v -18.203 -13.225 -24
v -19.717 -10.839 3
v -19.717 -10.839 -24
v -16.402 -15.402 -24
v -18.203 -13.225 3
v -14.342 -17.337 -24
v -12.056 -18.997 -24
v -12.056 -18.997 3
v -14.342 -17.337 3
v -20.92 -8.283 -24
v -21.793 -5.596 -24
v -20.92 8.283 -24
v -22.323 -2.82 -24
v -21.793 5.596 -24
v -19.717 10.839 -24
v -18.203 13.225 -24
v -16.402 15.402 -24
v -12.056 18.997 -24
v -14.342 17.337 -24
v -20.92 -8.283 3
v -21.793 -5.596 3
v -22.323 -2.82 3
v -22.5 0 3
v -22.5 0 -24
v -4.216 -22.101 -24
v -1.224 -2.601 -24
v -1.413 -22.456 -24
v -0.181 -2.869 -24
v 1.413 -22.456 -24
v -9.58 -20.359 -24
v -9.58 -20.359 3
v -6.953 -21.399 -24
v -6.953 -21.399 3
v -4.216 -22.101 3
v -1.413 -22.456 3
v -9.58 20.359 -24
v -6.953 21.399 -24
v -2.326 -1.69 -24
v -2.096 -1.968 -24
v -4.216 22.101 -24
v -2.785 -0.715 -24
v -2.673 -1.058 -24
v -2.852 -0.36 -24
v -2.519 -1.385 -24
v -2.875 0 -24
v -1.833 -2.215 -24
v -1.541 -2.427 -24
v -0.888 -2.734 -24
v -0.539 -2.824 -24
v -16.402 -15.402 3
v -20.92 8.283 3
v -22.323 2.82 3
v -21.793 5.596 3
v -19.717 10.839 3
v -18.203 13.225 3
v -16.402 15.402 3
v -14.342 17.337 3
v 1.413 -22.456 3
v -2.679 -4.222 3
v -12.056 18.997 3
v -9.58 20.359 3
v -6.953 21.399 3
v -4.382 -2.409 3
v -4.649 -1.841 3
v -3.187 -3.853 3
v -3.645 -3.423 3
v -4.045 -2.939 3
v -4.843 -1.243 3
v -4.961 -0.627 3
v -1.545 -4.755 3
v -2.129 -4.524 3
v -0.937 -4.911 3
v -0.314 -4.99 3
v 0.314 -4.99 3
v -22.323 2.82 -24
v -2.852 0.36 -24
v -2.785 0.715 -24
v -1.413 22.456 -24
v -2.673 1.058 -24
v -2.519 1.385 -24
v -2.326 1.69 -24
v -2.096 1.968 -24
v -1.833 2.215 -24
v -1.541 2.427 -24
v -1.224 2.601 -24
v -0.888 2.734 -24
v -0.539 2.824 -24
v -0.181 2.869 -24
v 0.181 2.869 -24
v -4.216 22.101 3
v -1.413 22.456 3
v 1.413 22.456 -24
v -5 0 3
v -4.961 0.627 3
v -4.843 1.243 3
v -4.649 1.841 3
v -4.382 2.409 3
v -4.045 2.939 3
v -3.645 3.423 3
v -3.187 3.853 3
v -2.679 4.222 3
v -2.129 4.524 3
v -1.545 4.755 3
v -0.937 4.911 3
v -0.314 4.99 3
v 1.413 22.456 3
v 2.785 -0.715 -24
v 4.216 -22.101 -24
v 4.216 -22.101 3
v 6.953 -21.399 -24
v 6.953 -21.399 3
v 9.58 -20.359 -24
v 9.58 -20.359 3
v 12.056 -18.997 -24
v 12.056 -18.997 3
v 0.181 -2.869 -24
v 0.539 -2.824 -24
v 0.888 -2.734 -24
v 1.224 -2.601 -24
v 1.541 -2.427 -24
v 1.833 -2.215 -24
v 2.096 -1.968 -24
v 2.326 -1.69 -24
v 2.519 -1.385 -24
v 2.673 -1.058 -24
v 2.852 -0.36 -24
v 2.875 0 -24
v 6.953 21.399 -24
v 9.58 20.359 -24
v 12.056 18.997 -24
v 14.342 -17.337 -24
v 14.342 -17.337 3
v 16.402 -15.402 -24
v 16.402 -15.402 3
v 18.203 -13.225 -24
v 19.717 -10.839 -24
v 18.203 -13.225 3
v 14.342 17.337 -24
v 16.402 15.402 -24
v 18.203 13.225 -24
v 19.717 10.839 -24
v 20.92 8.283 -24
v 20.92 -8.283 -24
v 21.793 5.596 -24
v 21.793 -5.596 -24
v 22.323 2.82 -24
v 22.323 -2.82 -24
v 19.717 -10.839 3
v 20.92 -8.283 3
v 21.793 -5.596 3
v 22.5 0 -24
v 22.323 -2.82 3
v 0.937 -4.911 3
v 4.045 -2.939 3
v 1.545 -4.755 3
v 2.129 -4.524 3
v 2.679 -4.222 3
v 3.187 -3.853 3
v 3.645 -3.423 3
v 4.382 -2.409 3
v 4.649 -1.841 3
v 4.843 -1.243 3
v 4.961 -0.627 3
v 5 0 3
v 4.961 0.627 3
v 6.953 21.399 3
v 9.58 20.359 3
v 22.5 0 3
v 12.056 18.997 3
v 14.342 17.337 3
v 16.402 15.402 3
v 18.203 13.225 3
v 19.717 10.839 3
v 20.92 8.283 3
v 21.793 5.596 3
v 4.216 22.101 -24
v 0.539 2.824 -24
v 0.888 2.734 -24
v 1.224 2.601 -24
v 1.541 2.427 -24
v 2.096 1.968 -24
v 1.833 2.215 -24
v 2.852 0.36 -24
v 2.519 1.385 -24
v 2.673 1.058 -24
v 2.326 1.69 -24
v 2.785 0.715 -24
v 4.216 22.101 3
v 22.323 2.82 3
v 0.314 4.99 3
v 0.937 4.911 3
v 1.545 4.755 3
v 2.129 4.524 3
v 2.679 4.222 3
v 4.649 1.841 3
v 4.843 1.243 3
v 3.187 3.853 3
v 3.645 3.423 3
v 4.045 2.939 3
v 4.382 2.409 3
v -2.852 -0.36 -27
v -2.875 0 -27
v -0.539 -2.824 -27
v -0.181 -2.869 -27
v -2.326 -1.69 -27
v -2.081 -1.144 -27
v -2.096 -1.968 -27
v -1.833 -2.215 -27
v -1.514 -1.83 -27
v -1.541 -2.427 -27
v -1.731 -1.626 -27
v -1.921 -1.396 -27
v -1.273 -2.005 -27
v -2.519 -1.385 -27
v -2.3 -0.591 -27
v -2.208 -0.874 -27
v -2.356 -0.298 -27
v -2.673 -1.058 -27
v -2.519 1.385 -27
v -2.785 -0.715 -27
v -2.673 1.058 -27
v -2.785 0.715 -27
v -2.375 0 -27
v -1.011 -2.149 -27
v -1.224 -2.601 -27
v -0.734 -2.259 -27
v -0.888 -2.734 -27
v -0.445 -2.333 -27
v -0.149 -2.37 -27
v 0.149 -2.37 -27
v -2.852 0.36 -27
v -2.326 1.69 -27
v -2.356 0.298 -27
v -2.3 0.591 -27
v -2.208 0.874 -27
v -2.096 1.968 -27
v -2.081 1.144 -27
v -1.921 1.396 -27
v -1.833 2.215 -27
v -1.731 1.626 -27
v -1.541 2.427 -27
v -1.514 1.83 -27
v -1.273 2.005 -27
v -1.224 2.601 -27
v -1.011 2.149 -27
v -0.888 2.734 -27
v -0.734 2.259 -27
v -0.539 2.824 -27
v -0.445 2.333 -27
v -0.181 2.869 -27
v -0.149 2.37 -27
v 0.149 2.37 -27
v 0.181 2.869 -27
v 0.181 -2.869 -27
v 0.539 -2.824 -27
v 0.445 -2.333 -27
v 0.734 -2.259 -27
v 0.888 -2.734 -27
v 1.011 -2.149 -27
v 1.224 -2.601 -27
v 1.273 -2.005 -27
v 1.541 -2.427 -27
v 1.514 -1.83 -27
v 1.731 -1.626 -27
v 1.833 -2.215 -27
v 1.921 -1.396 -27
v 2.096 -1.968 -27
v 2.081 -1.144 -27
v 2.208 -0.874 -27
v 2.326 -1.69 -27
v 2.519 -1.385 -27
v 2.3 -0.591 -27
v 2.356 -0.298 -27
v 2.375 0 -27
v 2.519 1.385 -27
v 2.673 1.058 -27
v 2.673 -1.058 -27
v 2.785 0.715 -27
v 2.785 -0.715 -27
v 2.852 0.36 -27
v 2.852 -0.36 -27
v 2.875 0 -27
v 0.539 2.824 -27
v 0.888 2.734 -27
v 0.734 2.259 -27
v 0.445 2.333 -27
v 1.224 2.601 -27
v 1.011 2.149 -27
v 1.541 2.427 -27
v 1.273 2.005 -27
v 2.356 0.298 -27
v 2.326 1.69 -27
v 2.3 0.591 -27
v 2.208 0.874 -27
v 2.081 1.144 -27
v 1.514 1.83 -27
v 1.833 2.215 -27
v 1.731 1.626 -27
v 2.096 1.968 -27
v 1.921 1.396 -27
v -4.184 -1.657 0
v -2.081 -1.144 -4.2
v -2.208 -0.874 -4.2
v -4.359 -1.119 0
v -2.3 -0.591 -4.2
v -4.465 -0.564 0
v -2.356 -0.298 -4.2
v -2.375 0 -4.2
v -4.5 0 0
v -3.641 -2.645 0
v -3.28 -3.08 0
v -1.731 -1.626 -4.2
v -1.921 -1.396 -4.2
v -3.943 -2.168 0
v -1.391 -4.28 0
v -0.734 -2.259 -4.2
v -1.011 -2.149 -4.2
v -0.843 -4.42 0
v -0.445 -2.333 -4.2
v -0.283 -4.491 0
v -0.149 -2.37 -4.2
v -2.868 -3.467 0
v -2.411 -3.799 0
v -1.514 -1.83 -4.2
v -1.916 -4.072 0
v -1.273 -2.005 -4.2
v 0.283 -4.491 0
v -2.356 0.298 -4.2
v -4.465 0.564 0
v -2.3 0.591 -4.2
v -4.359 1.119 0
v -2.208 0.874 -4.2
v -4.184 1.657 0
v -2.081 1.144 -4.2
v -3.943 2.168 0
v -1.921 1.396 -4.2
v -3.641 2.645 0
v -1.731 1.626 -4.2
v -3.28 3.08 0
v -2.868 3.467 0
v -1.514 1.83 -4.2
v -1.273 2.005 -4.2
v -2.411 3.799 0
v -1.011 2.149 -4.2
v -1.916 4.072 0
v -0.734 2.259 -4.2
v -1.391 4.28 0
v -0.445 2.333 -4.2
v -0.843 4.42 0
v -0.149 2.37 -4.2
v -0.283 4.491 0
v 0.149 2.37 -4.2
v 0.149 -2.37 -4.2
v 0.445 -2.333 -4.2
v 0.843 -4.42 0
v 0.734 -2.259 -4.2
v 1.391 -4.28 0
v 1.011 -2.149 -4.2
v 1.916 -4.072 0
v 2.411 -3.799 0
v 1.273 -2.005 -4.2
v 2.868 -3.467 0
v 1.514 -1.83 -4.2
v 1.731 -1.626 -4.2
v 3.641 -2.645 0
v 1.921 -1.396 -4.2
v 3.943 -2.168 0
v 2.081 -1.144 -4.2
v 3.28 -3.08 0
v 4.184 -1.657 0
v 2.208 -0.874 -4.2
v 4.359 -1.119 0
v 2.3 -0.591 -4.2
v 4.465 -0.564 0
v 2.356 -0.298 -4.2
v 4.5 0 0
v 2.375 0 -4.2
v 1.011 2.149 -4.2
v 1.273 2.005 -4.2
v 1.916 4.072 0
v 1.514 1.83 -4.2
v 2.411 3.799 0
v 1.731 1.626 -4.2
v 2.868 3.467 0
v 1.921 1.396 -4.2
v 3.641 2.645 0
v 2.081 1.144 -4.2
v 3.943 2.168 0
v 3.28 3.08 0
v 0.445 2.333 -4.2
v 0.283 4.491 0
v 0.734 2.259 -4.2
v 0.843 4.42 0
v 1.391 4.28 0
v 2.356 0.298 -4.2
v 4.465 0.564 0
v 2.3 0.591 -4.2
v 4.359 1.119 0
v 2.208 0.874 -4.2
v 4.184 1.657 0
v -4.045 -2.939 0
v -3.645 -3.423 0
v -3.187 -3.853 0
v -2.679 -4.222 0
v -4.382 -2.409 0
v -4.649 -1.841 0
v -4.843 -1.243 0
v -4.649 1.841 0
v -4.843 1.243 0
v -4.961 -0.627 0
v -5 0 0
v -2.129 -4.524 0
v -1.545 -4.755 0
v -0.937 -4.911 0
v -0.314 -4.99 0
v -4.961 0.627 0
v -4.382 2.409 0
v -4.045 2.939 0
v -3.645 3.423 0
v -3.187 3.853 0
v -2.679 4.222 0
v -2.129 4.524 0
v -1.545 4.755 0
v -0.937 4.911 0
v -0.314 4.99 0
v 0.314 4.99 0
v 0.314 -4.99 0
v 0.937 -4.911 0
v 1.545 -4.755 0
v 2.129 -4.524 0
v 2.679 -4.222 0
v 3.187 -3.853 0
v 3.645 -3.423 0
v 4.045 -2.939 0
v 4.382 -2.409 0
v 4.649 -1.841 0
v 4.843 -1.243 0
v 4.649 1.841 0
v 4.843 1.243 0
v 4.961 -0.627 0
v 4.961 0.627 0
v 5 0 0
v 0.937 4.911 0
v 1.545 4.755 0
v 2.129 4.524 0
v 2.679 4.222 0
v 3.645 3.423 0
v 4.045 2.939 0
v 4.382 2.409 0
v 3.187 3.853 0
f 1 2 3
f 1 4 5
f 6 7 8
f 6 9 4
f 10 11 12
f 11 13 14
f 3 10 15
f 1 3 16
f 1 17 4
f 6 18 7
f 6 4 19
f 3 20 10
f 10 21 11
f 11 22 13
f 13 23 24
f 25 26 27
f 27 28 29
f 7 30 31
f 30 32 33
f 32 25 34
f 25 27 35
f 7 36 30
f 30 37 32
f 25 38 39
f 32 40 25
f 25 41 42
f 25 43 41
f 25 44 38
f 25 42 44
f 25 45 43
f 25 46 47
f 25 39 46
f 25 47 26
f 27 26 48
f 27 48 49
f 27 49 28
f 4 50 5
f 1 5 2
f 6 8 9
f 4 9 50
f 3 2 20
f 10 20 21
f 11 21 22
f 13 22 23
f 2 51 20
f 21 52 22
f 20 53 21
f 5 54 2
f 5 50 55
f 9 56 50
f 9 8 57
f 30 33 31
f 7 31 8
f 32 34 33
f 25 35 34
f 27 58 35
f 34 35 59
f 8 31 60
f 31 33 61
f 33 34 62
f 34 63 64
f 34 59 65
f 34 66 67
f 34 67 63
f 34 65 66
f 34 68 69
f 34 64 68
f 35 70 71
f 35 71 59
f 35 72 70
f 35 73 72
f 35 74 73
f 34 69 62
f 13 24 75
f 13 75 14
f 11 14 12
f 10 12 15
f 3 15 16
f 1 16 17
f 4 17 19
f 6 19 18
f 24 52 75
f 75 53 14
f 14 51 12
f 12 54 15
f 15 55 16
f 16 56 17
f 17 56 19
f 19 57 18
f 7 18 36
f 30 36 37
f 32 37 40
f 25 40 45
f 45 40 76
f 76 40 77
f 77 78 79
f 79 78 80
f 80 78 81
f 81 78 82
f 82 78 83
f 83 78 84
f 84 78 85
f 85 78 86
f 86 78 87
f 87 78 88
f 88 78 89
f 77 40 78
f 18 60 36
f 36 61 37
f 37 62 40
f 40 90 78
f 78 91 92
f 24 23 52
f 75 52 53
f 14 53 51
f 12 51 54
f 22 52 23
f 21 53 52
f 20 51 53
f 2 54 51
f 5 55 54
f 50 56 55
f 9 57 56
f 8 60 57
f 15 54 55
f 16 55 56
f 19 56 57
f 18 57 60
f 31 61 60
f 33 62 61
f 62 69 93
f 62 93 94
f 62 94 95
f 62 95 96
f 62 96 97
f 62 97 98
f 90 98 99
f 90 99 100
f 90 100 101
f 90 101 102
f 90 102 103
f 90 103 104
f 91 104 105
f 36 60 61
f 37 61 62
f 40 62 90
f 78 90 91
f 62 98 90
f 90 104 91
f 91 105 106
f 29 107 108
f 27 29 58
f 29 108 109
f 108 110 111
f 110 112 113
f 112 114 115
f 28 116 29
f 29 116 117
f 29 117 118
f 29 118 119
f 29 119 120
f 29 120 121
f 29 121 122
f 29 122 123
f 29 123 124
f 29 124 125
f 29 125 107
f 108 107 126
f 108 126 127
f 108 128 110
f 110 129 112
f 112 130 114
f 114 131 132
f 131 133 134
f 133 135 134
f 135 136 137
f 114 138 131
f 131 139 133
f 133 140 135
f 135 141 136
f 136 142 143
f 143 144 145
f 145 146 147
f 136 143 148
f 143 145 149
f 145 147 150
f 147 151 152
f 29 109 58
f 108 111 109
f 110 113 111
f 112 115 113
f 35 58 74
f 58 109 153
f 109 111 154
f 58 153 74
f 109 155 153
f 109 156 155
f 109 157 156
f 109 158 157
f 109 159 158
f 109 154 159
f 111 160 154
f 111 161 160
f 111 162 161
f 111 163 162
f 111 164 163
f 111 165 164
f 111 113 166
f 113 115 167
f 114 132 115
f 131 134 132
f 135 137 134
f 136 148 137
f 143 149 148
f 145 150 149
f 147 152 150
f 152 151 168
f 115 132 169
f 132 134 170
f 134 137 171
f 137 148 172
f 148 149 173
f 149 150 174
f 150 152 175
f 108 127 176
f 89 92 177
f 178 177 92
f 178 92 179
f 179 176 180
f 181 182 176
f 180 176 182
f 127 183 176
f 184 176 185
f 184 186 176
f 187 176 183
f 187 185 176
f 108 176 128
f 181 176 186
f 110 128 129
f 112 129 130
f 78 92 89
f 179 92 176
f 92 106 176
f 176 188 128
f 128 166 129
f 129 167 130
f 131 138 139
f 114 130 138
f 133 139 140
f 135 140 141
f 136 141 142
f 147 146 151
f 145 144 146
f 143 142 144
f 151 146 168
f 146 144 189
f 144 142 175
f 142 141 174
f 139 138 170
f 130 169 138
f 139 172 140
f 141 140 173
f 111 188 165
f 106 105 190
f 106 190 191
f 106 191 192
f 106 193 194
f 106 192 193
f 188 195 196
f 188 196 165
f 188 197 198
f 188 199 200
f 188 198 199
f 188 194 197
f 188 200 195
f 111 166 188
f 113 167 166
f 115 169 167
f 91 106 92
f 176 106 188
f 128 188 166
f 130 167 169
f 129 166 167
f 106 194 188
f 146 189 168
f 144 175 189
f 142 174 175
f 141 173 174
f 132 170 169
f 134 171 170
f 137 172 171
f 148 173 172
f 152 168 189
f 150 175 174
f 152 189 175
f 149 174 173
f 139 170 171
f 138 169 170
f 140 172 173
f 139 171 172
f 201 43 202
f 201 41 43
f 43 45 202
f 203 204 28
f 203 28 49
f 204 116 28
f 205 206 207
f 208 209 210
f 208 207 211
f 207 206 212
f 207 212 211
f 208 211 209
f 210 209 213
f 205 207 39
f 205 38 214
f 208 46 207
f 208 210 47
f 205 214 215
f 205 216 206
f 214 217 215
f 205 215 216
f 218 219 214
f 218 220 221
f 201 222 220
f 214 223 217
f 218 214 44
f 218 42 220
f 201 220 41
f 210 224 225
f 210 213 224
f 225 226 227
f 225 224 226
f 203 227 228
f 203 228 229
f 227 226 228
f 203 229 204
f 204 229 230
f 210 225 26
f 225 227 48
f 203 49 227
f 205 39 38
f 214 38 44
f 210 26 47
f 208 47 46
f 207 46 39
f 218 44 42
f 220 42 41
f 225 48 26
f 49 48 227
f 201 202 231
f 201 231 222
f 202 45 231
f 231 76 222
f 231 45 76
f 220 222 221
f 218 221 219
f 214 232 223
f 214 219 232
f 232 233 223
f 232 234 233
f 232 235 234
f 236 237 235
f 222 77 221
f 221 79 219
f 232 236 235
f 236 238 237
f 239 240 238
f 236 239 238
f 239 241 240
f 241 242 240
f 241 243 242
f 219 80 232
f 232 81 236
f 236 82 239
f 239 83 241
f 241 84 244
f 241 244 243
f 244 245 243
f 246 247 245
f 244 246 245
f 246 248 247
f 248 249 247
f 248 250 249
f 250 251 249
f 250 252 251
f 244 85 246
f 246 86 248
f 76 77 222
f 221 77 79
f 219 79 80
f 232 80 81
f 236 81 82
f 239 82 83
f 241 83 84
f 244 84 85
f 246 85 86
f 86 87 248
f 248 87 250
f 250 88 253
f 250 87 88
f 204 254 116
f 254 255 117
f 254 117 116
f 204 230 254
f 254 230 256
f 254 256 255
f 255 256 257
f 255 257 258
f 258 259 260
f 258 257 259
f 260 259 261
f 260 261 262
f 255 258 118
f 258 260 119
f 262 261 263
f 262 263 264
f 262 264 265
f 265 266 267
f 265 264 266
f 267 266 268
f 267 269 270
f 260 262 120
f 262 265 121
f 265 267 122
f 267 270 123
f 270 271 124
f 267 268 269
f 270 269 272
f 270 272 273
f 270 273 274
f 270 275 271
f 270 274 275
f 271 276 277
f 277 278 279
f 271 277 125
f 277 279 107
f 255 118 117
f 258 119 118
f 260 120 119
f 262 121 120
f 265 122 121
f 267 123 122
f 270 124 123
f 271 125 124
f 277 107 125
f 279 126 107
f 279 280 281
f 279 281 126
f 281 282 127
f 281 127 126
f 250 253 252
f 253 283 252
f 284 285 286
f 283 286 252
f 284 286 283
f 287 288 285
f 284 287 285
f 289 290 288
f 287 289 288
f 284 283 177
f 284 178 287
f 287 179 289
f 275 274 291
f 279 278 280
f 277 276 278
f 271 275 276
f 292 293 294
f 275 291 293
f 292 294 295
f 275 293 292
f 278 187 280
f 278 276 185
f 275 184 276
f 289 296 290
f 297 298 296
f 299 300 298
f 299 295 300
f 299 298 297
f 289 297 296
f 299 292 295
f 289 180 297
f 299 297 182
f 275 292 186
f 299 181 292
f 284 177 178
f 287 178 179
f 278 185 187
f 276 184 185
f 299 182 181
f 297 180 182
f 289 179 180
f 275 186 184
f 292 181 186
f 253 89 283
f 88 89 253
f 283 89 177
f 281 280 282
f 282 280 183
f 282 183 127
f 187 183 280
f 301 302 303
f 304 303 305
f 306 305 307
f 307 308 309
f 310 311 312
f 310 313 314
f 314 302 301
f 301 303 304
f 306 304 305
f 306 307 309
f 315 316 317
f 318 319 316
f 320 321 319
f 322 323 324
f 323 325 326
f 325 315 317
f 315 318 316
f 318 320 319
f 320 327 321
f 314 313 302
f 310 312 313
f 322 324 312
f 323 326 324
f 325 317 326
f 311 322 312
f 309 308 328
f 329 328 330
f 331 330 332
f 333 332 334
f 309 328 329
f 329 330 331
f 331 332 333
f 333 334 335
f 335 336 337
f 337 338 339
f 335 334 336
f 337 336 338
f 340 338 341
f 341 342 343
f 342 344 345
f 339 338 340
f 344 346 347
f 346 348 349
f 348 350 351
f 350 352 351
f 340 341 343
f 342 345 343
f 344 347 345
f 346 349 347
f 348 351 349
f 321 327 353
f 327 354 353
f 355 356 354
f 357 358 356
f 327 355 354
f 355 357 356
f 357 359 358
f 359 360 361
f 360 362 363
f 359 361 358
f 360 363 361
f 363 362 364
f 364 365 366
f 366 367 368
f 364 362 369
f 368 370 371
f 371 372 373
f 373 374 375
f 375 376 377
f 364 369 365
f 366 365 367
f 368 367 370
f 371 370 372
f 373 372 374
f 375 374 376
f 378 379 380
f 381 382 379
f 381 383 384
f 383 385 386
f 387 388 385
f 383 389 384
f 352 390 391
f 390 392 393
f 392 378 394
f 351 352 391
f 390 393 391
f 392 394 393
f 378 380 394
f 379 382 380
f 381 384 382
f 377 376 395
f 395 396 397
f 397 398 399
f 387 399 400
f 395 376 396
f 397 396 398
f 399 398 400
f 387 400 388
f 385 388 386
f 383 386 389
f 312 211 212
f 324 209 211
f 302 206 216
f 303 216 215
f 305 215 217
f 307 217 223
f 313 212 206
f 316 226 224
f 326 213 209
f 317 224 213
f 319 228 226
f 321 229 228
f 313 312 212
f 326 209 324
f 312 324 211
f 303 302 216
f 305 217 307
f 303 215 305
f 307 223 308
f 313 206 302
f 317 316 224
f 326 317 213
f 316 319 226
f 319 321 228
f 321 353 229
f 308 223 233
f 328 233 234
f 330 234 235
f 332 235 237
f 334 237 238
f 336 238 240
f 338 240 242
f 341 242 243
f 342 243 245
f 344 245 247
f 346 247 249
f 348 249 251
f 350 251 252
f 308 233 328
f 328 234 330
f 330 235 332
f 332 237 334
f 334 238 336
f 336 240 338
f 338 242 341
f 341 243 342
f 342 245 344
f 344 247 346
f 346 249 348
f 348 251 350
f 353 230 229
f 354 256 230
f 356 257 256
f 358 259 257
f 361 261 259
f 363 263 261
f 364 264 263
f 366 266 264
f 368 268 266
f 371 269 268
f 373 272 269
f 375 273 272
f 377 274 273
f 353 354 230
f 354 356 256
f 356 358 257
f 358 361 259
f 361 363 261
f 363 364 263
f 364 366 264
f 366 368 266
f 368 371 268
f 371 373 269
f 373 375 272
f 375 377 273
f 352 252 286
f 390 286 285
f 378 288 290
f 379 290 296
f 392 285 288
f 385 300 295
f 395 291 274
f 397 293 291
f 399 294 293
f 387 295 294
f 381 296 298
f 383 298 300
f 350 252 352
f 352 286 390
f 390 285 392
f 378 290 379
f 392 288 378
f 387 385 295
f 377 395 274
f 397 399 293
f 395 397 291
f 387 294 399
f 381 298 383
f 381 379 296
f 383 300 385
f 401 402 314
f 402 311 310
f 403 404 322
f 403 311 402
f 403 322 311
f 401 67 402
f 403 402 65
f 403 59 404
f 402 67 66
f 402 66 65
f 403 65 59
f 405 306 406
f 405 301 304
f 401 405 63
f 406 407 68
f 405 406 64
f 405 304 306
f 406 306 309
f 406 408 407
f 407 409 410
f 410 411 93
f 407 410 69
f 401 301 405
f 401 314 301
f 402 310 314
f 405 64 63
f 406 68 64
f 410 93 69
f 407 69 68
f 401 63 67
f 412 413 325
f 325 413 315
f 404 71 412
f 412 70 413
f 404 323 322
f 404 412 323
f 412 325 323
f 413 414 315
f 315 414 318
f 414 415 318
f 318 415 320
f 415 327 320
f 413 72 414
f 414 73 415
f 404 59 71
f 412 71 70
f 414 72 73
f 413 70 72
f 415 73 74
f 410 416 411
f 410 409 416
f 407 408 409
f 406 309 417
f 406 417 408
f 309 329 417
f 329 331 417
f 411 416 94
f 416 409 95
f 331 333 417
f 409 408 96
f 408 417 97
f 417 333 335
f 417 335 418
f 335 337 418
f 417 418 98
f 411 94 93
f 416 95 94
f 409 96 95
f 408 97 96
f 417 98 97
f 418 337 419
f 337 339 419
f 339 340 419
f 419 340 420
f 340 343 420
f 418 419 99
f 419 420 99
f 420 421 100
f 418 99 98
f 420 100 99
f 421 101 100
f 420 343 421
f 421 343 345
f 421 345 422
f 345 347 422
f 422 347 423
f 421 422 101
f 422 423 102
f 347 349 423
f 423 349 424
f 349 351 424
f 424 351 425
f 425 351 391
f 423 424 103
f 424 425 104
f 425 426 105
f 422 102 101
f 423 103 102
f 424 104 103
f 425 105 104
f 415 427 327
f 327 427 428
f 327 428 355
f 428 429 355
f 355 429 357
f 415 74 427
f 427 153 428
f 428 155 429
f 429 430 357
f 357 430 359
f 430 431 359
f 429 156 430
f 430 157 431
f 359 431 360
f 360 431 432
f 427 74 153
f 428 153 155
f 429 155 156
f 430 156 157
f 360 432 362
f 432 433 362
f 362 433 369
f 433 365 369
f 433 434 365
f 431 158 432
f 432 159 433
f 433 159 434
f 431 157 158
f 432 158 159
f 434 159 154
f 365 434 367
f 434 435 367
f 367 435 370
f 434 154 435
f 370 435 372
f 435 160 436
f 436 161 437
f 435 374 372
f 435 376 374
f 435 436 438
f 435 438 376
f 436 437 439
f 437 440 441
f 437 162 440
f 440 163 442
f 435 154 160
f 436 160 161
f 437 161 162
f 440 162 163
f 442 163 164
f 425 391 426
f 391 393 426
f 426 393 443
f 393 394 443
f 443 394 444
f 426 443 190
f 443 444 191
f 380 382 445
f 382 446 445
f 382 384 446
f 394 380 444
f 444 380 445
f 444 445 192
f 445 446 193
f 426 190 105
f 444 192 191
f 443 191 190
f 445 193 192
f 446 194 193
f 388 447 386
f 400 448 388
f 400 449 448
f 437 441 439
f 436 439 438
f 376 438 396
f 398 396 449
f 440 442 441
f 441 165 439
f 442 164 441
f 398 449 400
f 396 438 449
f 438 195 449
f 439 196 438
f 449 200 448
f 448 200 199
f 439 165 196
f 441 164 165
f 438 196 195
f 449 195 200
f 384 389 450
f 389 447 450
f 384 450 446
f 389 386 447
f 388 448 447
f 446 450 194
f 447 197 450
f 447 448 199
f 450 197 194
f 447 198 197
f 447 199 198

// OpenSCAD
$fn = 50;

difference() {
	union() {
		translate(v = [0, 0, -24.0]) {
			cylinder(h = 27, r = 22.5);
		}
		#translate(v = [0, 0, -27.0]) {
			cylinder(h = 27, r = 2.875);
		}
	}
	union() {
		translate(v = [0, 0, 0]) {
			rotate(a = [0, 0, 0]) {
				difference() {
					union() {
						translate(v = [0, 0, -27.0]) {
							cylinder(h = 27, r = 2.25);
						}
						translate(v = [0, 0, -4.2]) {
							cylinder(h = 4.2, r1 = 2.375, r2 = 4.5);
						}
						translate(v = [0, 0, -27.0]) {
							cylinder(h = 27, r = 2.375);
						}
						translate(v = [0, 0, -27.0]) {
							cylinder(h = 27, r = 2.25);
						}
					}
					union();
				}
			}
		}
		#cylinder(h = 3, r = 5.0);
	}
}
